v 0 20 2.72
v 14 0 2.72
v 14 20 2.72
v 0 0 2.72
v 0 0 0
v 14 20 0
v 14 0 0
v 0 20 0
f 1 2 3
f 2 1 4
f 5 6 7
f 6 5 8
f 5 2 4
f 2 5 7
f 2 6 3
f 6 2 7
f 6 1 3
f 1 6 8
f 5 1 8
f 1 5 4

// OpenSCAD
/* Warning, this is a very basic generator with a lot of approximation 
input data : [PQFP, C2A, 14x20x2.72mm, 128, , A, C04-01091A]
generated by com.zoubworld.electronics.cad.model3d.Basic
Date : Sun Feb 15 10:50:49 CET 2026
*/

//body
color("black")
translate([0,0,0])
cube([14.0,20.0,2.72], center=false);
